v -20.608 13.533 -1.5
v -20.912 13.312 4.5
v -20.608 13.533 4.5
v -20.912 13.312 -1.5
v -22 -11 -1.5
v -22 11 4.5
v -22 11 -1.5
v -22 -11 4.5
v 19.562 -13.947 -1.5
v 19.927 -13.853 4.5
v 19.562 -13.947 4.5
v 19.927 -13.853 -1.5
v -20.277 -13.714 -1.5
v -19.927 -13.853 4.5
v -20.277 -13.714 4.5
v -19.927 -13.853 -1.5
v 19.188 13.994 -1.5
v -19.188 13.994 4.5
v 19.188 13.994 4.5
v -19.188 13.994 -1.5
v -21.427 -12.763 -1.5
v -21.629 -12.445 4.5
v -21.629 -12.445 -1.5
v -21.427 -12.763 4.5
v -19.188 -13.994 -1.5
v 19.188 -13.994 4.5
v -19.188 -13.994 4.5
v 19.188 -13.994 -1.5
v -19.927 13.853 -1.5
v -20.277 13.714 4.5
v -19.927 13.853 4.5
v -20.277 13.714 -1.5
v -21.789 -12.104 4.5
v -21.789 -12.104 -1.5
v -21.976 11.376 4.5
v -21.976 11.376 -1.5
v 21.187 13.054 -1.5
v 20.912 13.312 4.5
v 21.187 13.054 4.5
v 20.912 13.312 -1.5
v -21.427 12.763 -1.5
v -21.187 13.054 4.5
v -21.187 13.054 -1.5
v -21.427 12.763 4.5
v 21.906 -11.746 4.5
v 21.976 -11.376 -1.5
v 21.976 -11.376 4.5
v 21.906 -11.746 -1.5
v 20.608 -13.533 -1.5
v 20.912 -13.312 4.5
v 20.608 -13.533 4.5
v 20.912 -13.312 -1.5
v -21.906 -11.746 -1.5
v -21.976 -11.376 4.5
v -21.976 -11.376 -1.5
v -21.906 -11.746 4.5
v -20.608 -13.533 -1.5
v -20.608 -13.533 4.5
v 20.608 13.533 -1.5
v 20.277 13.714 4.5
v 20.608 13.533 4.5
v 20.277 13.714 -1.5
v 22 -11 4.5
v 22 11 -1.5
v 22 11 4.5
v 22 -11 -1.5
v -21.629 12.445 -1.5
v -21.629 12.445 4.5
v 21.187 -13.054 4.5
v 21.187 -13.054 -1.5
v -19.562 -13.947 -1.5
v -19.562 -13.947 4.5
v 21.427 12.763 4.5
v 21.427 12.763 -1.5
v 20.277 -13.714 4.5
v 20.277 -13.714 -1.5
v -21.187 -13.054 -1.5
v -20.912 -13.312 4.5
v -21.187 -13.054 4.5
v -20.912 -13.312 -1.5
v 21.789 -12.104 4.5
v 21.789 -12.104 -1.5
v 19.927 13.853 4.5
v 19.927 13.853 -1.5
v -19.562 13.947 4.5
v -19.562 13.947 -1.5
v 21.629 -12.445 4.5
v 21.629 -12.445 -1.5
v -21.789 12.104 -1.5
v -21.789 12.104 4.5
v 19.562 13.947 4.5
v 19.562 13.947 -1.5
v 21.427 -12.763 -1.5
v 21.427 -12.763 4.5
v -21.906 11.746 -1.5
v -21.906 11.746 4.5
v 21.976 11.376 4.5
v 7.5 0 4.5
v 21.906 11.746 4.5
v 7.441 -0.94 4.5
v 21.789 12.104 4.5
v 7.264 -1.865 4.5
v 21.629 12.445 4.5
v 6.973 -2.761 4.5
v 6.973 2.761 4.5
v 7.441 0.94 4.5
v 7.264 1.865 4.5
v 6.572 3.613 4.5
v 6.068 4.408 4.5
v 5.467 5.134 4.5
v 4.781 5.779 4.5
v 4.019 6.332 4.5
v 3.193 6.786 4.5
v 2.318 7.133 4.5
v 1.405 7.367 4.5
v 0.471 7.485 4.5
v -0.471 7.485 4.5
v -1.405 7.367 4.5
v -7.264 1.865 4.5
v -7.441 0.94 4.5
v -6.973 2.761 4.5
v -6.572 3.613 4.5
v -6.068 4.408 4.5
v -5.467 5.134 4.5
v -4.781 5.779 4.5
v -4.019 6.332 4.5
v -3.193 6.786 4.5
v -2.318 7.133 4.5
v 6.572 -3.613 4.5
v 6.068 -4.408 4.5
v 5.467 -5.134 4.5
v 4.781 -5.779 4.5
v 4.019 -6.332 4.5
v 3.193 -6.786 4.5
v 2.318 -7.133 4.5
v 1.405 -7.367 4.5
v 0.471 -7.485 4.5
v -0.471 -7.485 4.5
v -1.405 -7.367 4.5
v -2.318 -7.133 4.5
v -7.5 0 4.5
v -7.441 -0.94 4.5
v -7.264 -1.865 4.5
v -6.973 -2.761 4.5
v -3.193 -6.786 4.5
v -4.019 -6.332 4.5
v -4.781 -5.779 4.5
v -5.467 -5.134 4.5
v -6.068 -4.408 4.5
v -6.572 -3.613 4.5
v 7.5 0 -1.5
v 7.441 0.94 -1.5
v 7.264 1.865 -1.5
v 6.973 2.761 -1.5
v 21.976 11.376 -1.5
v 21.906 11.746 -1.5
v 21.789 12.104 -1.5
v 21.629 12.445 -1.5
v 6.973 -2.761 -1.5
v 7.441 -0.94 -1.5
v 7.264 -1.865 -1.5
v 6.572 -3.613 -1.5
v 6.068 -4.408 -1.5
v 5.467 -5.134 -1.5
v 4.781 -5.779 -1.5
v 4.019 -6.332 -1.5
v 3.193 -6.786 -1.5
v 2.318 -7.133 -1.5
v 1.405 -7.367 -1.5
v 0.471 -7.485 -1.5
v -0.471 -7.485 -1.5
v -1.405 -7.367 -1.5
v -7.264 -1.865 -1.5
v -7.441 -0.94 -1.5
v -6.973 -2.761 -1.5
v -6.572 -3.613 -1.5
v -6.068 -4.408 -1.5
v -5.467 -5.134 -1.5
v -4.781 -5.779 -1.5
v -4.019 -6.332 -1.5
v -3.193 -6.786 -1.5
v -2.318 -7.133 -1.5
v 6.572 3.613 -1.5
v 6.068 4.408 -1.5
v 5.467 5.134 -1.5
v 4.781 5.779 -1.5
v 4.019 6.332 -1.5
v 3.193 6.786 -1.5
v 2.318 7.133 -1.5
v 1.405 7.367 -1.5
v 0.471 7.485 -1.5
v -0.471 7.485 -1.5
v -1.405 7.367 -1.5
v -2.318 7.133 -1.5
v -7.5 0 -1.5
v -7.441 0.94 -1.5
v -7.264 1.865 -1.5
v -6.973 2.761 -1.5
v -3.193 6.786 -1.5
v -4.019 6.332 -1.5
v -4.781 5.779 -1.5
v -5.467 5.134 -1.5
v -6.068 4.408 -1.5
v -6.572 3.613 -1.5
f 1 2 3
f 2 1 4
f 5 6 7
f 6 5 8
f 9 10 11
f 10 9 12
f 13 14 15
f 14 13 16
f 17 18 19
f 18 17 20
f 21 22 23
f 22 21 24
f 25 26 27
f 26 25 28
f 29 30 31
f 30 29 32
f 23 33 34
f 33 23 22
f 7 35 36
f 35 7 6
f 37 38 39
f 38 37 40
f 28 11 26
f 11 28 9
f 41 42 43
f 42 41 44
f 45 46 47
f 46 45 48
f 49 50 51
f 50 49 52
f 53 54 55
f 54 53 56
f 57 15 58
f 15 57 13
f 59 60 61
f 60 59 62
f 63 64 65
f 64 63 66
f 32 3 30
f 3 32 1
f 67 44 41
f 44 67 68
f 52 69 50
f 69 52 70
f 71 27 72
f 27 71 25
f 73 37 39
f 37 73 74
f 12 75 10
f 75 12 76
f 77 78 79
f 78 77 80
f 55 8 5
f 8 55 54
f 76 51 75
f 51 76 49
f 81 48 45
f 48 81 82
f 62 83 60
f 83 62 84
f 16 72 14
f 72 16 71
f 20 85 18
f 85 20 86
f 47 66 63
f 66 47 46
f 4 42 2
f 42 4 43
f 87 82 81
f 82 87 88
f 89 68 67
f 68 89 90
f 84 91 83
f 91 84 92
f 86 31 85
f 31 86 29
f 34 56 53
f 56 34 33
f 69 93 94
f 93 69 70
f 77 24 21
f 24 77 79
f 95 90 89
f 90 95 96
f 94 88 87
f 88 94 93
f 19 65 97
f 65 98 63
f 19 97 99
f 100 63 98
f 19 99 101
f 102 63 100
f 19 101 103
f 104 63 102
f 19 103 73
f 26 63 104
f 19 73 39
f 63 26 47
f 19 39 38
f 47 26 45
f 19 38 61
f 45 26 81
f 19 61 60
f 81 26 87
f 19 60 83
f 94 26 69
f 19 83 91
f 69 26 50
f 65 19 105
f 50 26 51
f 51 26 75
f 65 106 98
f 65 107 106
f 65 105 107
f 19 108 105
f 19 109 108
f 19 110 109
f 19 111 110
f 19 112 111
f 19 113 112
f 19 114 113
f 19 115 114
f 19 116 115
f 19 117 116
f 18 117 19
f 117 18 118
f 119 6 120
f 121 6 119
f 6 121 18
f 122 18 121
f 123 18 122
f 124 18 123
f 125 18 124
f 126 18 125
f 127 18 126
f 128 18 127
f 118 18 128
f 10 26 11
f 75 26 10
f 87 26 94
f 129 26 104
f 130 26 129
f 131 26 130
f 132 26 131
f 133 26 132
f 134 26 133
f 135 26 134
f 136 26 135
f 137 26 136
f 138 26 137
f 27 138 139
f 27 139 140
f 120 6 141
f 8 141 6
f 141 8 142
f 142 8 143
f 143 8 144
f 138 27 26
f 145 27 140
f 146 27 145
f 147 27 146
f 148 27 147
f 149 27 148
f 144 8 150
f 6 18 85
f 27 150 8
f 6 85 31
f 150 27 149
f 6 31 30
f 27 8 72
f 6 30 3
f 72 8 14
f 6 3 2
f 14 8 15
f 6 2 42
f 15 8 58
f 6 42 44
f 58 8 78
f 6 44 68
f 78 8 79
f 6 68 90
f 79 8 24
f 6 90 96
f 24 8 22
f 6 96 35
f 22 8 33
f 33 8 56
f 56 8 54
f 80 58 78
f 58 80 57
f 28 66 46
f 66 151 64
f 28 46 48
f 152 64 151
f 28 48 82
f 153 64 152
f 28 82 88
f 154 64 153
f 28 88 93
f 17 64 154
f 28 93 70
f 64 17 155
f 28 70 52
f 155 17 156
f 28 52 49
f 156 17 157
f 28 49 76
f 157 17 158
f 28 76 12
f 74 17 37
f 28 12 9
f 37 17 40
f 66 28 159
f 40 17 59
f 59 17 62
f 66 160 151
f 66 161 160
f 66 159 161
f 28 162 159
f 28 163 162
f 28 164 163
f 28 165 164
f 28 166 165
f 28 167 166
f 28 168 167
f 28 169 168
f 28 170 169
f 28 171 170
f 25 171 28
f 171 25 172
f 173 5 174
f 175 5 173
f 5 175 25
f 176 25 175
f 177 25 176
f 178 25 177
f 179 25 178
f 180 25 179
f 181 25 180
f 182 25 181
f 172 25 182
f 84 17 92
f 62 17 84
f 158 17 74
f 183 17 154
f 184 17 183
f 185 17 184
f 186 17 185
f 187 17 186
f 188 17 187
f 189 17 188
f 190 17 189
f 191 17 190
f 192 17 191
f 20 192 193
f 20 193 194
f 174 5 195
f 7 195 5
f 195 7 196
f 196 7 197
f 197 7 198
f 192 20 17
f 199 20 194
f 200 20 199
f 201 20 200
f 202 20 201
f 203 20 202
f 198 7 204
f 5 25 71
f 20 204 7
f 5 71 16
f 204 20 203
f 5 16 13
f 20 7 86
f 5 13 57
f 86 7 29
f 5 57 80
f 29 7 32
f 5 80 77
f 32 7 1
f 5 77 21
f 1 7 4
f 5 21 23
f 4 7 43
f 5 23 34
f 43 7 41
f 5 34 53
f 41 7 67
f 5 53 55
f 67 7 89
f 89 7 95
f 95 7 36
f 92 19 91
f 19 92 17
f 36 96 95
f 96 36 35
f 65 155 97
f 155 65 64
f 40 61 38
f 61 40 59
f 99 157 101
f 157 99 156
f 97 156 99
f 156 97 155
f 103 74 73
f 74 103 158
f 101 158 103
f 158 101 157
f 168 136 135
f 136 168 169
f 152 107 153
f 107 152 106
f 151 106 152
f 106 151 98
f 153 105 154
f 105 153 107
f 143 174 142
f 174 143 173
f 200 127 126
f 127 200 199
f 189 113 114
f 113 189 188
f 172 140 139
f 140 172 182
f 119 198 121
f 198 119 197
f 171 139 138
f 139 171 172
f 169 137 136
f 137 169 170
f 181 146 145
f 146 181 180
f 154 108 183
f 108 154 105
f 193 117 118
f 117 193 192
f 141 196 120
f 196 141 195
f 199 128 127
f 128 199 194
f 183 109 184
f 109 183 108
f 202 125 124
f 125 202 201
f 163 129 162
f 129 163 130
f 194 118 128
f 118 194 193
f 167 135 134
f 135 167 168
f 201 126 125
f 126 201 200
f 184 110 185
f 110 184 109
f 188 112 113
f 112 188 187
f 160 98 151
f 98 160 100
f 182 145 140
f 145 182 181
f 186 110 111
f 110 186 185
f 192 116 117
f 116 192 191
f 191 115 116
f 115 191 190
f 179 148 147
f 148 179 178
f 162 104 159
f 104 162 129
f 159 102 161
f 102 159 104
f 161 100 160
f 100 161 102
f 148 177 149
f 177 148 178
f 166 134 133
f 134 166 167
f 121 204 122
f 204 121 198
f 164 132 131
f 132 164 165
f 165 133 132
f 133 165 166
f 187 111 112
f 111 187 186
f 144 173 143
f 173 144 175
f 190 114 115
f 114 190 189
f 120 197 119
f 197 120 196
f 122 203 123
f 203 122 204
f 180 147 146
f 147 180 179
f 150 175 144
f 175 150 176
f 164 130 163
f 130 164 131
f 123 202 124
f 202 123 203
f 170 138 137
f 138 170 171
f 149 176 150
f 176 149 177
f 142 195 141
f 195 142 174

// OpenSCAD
 // CSG.scad - Basic example of CSG usage

$fn=50;

base();

module base() {
    difference(){
        
        minkowski() {
          cube([38,22, 3], true);
          cylinder(r=3,h=3);
        }
        cylinder(h=30, d=15, center=true);
    }
} 
